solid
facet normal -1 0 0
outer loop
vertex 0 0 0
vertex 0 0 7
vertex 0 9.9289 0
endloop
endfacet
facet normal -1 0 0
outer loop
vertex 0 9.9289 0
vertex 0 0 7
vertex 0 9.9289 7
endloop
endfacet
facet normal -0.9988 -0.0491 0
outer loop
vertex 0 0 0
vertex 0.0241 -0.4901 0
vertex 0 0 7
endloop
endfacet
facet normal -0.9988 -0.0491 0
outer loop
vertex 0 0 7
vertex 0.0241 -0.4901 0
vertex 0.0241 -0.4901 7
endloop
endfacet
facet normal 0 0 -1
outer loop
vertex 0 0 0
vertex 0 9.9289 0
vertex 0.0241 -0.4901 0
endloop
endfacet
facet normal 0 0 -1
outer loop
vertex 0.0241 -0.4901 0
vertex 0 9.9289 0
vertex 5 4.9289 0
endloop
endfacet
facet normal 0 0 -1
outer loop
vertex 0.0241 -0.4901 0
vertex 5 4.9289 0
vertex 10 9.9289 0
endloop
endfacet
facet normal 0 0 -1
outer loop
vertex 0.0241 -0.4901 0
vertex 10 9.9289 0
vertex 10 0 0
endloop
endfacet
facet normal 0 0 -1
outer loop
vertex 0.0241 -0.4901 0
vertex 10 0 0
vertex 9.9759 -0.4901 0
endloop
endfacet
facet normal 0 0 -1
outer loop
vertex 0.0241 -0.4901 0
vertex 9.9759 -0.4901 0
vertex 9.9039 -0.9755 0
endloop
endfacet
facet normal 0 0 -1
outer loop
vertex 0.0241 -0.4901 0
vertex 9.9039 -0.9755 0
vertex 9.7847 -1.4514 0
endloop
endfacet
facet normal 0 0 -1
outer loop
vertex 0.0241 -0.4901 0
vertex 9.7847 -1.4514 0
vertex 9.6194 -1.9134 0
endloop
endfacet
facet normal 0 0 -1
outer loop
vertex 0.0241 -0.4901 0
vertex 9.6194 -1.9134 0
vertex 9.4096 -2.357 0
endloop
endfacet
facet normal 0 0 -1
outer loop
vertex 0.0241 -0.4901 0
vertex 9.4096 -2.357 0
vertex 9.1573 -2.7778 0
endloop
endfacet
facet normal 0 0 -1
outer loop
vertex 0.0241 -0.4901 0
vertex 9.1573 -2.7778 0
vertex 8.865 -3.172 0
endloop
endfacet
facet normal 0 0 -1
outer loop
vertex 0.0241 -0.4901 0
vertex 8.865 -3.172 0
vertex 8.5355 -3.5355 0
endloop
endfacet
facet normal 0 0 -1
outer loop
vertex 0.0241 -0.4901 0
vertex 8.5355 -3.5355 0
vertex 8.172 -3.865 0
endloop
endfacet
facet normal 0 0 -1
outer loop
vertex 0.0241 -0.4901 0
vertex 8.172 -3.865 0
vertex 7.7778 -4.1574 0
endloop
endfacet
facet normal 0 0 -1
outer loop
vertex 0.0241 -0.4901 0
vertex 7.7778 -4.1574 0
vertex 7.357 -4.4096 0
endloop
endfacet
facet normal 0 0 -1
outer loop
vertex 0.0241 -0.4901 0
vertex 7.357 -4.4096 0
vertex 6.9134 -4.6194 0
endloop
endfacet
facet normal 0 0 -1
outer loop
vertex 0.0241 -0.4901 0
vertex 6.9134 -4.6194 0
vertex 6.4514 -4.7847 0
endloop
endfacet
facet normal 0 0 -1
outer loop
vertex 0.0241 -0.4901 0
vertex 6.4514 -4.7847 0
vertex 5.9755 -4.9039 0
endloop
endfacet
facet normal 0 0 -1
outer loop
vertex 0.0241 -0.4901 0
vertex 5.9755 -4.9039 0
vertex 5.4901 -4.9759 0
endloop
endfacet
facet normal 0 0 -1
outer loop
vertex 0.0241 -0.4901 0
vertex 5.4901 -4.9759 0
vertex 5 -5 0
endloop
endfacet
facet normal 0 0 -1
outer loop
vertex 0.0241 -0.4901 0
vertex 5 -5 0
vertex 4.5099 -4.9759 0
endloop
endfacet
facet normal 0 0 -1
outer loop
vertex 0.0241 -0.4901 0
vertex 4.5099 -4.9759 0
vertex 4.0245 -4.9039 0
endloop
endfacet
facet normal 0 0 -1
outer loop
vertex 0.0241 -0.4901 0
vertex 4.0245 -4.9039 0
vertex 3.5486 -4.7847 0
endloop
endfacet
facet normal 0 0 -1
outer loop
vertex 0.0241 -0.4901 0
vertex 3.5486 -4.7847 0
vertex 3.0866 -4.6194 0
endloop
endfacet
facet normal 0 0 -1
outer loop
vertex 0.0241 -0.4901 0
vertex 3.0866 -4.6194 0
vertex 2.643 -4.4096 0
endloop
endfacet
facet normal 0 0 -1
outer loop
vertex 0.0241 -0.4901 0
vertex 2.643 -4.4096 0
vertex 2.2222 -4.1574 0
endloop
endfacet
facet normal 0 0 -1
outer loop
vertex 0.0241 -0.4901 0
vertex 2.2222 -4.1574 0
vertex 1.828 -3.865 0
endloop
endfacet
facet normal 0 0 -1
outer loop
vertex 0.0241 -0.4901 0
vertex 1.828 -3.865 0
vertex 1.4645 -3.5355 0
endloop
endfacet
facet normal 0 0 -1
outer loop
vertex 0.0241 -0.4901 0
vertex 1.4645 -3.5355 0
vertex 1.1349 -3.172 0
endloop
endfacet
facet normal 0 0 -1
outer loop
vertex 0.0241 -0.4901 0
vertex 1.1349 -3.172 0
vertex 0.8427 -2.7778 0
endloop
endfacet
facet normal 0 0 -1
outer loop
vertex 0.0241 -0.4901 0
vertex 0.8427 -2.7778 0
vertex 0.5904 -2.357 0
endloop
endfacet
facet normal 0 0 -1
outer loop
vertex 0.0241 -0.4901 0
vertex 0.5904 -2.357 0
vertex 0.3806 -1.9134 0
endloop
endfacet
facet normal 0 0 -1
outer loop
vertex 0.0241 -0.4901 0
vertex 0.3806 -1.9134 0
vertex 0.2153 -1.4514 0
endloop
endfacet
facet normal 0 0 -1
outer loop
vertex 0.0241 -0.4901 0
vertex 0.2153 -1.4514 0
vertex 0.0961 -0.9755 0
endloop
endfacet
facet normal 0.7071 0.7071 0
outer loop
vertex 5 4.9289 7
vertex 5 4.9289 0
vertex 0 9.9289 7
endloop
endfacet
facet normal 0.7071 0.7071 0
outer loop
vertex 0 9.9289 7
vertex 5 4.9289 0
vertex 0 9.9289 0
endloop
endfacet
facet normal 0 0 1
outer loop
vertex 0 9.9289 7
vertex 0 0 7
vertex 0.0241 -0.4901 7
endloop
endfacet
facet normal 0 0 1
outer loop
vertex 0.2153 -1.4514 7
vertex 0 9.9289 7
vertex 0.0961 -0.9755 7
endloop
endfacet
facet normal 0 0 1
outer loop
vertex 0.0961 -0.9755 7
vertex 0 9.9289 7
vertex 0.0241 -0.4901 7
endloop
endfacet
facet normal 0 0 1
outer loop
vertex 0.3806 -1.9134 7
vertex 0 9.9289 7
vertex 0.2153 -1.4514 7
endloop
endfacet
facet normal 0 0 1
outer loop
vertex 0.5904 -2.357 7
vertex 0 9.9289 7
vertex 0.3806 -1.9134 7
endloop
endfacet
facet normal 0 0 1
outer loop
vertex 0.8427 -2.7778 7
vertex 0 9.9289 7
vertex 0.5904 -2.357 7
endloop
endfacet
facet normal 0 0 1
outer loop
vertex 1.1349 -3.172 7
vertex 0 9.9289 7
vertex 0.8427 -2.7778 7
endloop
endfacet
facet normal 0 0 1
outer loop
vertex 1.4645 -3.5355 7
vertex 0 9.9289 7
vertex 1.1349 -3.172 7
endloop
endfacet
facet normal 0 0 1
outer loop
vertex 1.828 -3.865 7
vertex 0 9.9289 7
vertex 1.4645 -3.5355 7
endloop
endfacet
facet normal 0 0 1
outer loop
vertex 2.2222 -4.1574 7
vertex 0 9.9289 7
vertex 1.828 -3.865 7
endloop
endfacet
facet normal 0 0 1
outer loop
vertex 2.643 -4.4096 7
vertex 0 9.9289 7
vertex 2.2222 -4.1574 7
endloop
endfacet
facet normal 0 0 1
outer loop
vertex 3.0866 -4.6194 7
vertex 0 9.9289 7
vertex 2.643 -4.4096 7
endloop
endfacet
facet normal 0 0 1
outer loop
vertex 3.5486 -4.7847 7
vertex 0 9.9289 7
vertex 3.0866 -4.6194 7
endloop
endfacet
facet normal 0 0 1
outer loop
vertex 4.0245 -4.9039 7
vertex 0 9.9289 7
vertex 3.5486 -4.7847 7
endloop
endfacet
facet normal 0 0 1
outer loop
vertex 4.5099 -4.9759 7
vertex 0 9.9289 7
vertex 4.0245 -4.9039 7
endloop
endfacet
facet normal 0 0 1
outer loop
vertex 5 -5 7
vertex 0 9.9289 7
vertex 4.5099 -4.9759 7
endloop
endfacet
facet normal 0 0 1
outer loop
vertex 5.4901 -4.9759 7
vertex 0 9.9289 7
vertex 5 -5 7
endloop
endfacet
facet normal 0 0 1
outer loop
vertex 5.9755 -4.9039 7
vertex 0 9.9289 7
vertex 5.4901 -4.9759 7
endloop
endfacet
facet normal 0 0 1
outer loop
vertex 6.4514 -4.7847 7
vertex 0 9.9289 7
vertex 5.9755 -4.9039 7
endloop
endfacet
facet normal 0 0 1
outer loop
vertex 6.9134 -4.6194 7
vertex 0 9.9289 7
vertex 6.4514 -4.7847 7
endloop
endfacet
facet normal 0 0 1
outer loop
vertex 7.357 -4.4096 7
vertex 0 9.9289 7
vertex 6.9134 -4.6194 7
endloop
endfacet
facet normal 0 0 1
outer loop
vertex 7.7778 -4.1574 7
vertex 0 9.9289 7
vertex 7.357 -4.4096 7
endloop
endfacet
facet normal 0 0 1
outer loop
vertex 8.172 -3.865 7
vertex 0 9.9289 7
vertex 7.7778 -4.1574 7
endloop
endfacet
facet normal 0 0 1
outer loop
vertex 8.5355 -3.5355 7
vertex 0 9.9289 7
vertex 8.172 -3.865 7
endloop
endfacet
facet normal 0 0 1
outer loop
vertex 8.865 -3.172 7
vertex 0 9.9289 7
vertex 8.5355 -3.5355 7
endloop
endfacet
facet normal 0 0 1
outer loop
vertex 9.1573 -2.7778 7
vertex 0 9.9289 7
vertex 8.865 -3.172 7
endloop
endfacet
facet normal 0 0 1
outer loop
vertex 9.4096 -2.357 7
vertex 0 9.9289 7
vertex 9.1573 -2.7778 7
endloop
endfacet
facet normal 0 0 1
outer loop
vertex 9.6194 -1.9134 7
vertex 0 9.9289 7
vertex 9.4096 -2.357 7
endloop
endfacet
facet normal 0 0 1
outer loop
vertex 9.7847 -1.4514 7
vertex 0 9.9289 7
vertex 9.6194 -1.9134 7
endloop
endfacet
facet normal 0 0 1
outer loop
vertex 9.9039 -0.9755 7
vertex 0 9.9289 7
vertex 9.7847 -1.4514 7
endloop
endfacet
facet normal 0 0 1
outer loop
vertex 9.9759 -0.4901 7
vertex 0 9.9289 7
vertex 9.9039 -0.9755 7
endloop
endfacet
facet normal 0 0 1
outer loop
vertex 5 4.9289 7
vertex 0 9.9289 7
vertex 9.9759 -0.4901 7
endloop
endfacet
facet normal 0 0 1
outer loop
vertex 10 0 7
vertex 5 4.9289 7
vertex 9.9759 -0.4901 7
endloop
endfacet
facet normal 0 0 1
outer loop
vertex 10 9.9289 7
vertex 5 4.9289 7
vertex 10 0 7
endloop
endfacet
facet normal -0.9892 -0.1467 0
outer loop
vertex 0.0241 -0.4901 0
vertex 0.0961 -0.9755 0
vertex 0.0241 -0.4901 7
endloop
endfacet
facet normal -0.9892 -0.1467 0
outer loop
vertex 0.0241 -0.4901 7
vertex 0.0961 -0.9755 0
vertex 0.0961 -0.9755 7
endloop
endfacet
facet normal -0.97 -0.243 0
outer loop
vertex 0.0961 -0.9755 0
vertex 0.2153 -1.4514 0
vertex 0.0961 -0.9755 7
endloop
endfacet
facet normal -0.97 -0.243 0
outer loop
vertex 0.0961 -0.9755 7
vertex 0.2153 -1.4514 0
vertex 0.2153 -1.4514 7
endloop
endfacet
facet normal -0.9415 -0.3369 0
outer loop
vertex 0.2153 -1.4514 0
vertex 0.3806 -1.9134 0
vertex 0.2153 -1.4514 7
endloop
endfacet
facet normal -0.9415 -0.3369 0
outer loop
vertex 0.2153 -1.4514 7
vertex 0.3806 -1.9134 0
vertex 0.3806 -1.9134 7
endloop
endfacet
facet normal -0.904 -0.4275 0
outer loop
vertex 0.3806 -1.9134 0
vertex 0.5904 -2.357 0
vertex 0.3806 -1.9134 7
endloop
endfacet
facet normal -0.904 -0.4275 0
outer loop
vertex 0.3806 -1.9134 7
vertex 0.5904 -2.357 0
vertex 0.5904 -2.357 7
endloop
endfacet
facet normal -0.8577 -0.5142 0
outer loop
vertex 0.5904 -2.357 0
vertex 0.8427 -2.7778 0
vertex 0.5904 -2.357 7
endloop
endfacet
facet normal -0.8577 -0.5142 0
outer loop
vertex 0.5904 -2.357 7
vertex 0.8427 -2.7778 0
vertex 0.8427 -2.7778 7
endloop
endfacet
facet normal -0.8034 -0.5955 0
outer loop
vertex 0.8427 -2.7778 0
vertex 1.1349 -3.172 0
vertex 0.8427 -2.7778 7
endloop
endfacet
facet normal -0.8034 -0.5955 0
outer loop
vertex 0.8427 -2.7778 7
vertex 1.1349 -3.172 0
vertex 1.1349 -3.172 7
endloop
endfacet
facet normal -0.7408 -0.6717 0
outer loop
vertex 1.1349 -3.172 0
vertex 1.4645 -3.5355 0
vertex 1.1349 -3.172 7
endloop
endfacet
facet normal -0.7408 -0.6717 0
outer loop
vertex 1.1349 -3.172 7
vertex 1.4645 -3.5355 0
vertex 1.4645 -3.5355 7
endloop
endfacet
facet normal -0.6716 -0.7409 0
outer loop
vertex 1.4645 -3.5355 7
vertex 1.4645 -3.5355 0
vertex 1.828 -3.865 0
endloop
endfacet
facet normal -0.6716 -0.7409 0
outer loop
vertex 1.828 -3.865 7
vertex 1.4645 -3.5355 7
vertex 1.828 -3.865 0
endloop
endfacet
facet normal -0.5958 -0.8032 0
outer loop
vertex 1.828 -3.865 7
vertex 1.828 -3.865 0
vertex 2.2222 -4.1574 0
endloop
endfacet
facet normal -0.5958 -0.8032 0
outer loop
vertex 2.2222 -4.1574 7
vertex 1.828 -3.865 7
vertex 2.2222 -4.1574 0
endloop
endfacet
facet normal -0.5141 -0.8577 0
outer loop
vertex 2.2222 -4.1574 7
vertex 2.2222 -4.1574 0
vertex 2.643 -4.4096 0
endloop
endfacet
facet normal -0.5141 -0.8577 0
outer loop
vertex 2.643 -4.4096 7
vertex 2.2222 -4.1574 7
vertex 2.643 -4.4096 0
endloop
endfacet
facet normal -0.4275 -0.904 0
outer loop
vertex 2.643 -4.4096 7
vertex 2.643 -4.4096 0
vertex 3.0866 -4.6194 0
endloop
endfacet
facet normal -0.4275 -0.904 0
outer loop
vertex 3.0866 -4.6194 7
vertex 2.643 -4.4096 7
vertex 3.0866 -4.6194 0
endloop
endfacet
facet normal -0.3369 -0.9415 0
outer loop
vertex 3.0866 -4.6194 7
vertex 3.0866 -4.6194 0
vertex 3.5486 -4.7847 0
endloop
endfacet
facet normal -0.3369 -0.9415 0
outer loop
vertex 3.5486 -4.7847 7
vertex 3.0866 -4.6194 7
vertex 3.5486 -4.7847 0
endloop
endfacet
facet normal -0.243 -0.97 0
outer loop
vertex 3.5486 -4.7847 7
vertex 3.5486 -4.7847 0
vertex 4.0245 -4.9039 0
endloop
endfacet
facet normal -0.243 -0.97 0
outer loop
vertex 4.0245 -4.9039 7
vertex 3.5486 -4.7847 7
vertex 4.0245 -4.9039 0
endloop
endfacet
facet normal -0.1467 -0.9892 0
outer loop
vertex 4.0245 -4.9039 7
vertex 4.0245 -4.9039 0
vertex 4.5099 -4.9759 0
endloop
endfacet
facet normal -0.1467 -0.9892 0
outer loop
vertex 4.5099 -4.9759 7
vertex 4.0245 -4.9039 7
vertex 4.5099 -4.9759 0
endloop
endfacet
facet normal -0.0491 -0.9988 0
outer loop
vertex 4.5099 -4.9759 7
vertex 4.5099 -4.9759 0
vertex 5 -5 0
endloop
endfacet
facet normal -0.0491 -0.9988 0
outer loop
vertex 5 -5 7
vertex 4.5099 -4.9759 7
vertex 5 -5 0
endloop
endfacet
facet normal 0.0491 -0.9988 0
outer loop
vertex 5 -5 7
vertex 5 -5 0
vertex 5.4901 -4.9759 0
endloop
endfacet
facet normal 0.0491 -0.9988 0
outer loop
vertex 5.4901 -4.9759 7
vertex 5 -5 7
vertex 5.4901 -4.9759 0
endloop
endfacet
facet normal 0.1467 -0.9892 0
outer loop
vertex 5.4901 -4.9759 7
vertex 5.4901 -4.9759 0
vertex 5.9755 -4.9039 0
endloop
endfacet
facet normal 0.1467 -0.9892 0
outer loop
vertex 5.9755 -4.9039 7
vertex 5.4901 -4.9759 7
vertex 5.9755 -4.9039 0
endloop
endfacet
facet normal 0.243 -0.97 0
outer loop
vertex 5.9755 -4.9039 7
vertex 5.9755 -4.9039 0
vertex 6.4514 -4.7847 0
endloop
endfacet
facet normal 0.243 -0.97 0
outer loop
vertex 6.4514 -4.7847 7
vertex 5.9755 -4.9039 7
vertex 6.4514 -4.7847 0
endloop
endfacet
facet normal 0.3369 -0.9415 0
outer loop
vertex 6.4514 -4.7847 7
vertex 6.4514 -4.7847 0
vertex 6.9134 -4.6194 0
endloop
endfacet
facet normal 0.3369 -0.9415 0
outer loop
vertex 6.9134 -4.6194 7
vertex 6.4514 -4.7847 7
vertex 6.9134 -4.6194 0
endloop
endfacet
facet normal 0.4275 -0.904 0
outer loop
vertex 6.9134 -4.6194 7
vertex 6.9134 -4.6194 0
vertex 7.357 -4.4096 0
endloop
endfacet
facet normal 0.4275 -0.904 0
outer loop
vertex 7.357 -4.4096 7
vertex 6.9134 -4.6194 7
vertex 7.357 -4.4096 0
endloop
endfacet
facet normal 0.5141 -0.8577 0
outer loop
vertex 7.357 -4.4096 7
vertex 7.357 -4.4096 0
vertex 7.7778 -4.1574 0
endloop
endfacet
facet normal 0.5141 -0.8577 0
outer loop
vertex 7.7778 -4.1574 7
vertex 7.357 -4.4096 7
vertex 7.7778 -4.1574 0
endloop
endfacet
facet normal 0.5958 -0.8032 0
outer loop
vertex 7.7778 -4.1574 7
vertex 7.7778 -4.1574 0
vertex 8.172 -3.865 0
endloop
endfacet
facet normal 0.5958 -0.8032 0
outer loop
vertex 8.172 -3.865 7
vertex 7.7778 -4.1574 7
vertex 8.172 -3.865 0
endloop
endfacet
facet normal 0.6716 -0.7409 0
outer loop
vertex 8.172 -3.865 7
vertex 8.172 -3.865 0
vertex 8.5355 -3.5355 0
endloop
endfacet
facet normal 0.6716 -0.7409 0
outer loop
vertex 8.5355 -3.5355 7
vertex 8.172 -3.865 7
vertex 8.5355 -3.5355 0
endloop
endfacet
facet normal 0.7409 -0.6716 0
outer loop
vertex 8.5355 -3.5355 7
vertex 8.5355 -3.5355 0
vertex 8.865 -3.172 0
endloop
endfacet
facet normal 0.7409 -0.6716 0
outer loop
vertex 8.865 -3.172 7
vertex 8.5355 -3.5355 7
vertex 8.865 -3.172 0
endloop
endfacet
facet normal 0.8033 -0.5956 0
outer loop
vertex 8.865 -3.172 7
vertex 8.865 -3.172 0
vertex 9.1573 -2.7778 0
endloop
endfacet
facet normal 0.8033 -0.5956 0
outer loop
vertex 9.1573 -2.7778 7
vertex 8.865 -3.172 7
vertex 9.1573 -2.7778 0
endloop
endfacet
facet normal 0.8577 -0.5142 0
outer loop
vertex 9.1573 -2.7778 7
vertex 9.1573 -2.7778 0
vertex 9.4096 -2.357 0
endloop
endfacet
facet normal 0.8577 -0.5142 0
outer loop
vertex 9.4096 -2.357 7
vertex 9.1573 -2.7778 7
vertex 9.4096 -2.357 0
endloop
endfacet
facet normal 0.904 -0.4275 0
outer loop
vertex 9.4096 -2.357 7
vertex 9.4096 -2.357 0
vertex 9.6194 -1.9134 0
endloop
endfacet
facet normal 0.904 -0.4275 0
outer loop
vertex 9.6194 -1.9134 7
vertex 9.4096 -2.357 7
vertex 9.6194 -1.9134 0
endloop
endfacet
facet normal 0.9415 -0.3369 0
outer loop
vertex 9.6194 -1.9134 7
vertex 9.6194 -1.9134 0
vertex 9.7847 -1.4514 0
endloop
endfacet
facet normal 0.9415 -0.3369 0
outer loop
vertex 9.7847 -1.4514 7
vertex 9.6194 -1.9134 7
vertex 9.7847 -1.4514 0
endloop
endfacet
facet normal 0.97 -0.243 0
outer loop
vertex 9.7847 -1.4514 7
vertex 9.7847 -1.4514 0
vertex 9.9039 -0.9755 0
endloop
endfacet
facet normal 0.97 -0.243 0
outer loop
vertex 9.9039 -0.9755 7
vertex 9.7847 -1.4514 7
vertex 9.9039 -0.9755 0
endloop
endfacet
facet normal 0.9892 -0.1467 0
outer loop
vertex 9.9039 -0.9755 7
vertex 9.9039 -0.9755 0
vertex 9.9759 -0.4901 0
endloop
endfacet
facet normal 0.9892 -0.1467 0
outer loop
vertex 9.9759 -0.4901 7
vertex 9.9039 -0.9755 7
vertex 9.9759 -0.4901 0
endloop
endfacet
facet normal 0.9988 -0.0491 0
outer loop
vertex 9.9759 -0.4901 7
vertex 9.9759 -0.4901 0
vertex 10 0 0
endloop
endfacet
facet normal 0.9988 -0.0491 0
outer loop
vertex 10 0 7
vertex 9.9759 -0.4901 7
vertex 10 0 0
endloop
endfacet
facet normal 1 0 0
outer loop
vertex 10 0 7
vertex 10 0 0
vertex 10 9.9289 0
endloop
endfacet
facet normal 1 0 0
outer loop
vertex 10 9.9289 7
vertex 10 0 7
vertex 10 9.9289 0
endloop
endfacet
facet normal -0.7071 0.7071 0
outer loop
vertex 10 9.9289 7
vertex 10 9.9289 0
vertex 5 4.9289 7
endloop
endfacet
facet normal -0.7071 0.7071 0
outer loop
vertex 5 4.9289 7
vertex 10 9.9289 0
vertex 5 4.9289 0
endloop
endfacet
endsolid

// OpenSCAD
difference() {
    union() {
    	cube([10,10,7]);
    	translate([5,0,0]) cylinder(r=5,h=7,$fn=64);
    }
    translate([5, 12, 5]) rotate([0, 0, 45]) cube(size=[10, 10, 10], center=true);
}
